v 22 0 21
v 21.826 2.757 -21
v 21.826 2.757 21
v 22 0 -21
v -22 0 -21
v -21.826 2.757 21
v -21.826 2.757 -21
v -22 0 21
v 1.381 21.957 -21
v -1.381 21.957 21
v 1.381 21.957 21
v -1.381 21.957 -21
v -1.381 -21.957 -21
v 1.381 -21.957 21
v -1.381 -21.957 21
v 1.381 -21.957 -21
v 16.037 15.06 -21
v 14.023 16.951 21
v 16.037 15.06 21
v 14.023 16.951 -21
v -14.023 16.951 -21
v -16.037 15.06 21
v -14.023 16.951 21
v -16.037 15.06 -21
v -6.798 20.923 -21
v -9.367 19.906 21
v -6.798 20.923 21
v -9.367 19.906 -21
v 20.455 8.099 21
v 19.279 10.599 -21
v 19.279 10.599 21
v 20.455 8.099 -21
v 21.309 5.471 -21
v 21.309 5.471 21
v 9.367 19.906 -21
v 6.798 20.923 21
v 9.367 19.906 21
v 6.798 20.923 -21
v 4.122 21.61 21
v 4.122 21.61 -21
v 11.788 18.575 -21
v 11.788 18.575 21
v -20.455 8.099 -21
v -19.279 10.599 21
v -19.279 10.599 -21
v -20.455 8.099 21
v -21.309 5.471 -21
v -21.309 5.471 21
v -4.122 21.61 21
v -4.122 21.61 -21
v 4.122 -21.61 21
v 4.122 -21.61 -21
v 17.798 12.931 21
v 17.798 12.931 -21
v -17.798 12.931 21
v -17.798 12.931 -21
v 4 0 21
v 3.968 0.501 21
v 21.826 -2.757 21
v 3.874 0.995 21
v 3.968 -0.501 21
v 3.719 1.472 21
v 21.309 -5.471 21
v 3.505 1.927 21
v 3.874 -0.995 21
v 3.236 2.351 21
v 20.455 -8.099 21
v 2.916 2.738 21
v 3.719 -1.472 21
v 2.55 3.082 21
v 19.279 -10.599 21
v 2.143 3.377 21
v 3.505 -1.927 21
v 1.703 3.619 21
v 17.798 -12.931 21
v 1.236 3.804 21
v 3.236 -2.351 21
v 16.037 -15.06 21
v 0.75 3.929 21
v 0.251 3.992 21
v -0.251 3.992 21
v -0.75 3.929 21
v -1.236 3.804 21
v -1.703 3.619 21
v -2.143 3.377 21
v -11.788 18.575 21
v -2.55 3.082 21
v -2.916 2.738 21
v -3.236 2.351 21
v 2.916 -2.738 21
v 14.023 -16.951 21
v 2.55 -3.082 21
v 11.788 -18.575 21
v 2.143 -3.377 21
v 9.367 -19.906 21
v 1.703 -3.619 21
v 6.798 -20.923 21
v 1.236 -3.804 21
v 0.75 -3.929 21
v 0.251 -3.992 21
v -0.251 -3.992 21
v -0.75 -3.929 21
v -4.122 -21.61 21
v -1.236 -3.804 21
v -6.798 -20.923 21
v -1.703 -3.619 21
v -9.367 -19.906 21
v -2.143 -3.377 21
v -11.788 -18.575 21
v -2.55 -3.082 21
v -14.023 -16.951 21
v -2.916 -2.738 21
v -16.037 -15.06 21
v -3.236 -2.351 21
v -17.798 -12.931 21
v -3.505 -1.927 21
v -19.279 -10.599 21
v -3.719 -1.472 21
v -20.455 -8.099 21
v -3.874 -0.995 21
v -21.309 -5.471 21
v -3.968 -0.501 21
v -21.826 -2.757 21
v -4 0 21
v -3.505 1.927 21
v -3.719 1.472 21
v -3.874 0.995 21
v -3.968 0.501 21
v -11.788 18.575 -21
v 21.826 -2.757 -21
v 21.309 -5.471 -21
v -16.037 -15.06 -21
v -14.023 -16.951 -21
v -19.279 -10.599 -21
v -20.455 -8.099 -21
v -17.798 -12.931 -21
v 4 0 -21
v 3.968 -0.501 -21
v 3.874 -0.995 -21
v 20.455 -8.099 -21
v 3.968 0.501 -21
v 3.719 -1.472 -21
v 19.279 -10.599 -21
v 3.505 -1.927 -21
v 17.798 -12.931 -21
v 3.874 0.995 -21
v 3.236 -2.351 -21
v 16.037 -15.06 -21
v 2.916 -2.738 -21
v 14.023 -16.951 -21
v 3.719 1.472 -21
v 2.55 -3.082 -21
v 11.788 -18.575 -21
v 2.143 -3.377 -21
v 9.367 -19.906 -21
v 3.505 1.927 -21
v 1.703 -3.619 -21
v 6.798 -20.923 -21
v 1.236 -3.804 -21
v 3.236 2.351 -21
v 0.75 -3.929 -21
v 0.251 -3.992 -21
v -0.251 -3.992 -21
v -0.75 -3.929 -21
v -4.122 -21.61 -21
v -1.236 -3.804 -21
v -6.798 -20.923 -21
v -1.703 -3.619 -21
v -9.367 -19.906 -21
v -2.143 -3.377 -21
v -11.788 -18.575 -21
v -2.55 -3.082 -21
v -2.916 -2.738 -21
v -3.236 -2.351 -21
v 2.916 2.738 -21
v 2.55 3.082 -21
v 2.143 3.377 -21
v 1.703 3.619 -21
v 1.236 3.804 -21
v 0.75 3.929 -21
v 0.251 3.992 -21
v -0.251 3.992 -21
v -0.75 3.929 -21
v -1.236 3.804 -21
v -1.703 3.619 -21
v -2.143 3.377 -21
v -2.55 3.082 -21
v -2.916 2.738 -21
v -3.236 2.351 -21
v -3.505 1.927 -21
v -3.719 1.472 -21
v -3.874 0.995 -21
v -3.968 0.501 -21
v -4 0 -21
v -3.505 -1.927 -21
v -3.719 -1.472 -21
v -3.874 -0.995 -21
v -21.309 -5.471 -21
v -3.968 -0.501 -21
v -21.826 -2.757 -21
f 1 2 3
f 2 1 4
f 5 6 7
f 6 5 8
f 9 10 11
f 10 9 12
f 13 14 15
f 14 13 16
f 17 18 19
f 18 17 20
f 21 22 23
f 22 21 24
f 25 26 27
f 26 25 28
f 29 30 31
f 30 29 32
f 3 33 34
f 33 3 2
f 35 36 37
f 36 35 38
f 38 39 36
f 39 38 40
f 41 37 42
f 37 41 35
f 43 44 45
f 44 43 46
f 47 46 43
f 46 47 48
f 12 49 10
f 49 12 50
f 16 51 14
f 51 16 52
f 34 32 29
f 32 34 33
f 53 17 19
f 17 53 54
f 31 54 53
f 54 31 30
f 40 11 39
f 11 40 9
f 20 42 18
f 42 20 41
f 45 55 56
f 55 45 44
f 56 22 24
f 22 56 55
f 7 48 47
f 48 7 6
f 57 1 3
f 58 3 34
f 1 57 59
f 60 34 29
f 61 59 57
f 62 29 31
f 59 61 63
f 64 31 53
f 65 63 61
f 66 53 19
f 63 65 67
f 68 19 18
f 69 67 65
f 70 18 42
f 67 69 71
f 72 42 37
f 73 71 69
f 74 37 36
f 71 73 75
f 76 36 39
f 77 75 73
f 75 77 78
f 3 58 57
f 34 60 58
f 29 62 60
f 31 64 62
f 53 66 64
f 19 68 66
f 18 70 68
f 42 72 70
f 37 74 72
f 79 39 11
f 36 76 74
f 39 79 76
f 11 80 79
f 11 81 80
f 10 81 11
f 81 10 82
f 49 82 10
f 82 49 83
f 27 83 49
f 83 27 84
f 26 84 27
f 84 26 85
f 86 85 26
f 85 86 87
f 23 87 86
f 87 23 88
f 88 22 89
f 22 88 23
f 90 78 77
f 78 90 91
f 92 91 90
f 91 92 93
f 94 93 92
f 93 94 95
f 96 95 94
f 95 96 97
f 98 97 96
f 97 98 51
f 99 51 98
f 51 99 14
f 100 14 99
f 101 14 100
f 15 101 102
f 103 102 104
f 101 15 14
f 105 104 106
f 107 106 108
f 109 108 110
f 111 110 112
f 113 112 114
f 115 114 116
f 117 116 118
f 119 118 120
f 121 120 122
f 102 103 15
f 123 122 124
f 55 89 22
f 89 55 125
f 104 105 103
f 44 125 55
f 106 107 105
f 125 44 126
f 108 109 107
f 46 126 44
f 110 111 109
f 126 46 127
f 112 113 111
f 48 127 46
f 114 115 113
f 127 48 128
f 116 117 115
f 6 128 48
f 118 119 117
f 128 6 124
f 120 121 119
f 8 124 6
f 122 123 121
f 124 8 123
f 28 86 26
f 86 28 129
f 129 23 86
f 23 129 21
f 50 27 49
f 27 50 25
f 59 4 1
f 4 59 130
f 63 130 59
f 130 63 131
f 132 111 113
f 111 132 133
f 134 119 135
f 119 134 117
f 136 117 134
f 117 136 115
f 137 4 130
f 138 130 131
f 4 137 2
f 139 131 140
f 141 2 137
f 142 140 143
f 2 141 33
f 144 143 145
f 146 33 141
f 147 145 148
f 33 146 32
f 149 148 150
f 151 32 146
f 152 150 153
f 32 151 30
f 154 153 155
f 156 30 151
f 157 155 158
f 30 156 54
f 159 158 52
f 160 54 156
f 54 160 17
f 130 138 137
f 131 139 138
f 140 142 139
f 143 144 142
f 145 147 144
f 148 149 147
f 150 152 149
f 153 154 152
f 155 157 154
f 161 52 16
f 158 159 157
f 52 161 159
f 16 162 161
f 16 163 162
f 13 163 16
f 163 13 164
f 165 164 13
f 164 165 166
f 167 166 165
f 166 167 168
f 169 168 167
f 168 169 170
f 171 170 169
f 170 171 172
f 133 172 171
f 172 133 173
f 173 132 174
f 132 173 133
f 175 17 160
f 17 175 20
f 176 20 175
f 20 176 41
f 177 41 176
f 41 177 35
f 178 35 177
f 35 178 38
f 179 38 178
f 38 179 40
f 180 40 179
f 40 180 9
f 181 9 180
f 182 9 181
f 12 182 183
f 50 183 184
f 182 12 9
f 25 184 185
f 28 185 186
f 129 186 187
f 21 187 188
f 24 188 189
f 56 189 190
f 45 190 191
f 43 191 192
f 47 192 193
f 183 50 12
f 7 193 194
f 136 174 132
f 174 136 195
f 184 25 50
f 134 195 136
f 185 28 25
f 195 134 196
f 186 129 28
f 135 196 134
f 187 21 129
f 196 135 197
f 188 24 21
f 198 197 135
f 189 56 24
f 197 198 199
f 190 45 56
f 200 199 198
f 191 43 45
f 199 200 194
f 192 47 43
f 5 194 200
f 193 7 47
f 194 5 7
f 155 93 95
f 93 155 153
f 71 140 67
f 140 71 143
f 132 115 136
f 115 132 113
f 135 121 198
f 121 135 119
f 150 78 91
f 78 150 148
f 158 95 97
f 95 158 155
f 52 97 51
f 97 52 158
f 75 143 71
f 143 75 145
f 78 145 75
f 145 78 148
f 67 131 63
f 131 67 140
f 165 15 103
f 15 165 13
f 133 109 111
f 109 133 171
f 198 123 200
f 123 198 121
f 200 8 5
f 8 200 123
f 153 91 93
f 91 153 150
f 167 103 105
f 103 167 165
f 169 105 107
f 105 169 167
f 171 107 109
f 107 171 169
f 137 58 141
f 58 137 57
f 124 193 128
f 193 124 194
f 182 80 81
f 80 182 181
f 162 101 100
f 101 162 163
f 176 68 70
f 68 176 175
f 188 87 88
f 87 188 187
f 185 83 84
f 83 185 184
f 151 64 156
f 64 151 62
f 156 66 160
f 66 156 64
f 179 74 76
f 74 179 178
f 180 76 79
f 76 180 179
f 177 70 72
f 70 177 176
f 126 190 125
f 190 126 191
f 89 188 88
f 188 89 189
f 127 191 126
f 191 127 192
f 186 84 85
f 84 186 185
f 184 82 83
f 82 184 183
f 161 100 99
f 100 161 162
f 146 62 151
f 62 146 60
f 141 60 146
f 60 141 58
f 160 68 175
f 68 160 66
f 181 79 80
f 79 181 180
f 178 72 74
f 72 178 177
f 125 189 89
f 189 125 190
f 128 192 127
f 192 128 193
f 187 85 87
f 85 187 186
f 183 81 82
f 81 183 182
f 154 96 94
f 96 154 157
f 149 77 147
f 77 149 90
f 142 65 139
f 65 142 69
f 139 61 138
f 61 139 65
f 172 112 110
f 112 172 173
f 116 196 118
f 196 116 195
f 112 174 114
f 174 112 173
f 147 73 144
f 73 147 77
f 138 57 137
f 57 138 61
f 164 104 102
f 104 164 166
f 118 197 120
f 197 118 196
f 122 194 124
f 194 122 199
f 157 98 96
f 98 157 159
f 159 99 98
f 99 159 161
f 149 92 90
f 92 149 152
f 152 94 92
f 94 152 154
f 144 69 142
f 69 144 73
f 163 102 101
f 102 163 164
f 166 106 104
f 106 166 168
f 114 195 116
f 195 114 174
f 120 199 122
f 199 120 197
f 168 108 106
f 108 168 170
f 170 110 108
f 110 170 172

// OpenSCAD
$fn = 50;


difference() {
	union() {
		translate(v = [0, 0, -21.0000000000]) {
			cylinder(h = 42, r = 22.0000000000);
		}
	}
	union() {
		translate(v = [0, 0, -100.0000000000]) {
			cylinder(h = 200, r = 4);
		}
	}
}
